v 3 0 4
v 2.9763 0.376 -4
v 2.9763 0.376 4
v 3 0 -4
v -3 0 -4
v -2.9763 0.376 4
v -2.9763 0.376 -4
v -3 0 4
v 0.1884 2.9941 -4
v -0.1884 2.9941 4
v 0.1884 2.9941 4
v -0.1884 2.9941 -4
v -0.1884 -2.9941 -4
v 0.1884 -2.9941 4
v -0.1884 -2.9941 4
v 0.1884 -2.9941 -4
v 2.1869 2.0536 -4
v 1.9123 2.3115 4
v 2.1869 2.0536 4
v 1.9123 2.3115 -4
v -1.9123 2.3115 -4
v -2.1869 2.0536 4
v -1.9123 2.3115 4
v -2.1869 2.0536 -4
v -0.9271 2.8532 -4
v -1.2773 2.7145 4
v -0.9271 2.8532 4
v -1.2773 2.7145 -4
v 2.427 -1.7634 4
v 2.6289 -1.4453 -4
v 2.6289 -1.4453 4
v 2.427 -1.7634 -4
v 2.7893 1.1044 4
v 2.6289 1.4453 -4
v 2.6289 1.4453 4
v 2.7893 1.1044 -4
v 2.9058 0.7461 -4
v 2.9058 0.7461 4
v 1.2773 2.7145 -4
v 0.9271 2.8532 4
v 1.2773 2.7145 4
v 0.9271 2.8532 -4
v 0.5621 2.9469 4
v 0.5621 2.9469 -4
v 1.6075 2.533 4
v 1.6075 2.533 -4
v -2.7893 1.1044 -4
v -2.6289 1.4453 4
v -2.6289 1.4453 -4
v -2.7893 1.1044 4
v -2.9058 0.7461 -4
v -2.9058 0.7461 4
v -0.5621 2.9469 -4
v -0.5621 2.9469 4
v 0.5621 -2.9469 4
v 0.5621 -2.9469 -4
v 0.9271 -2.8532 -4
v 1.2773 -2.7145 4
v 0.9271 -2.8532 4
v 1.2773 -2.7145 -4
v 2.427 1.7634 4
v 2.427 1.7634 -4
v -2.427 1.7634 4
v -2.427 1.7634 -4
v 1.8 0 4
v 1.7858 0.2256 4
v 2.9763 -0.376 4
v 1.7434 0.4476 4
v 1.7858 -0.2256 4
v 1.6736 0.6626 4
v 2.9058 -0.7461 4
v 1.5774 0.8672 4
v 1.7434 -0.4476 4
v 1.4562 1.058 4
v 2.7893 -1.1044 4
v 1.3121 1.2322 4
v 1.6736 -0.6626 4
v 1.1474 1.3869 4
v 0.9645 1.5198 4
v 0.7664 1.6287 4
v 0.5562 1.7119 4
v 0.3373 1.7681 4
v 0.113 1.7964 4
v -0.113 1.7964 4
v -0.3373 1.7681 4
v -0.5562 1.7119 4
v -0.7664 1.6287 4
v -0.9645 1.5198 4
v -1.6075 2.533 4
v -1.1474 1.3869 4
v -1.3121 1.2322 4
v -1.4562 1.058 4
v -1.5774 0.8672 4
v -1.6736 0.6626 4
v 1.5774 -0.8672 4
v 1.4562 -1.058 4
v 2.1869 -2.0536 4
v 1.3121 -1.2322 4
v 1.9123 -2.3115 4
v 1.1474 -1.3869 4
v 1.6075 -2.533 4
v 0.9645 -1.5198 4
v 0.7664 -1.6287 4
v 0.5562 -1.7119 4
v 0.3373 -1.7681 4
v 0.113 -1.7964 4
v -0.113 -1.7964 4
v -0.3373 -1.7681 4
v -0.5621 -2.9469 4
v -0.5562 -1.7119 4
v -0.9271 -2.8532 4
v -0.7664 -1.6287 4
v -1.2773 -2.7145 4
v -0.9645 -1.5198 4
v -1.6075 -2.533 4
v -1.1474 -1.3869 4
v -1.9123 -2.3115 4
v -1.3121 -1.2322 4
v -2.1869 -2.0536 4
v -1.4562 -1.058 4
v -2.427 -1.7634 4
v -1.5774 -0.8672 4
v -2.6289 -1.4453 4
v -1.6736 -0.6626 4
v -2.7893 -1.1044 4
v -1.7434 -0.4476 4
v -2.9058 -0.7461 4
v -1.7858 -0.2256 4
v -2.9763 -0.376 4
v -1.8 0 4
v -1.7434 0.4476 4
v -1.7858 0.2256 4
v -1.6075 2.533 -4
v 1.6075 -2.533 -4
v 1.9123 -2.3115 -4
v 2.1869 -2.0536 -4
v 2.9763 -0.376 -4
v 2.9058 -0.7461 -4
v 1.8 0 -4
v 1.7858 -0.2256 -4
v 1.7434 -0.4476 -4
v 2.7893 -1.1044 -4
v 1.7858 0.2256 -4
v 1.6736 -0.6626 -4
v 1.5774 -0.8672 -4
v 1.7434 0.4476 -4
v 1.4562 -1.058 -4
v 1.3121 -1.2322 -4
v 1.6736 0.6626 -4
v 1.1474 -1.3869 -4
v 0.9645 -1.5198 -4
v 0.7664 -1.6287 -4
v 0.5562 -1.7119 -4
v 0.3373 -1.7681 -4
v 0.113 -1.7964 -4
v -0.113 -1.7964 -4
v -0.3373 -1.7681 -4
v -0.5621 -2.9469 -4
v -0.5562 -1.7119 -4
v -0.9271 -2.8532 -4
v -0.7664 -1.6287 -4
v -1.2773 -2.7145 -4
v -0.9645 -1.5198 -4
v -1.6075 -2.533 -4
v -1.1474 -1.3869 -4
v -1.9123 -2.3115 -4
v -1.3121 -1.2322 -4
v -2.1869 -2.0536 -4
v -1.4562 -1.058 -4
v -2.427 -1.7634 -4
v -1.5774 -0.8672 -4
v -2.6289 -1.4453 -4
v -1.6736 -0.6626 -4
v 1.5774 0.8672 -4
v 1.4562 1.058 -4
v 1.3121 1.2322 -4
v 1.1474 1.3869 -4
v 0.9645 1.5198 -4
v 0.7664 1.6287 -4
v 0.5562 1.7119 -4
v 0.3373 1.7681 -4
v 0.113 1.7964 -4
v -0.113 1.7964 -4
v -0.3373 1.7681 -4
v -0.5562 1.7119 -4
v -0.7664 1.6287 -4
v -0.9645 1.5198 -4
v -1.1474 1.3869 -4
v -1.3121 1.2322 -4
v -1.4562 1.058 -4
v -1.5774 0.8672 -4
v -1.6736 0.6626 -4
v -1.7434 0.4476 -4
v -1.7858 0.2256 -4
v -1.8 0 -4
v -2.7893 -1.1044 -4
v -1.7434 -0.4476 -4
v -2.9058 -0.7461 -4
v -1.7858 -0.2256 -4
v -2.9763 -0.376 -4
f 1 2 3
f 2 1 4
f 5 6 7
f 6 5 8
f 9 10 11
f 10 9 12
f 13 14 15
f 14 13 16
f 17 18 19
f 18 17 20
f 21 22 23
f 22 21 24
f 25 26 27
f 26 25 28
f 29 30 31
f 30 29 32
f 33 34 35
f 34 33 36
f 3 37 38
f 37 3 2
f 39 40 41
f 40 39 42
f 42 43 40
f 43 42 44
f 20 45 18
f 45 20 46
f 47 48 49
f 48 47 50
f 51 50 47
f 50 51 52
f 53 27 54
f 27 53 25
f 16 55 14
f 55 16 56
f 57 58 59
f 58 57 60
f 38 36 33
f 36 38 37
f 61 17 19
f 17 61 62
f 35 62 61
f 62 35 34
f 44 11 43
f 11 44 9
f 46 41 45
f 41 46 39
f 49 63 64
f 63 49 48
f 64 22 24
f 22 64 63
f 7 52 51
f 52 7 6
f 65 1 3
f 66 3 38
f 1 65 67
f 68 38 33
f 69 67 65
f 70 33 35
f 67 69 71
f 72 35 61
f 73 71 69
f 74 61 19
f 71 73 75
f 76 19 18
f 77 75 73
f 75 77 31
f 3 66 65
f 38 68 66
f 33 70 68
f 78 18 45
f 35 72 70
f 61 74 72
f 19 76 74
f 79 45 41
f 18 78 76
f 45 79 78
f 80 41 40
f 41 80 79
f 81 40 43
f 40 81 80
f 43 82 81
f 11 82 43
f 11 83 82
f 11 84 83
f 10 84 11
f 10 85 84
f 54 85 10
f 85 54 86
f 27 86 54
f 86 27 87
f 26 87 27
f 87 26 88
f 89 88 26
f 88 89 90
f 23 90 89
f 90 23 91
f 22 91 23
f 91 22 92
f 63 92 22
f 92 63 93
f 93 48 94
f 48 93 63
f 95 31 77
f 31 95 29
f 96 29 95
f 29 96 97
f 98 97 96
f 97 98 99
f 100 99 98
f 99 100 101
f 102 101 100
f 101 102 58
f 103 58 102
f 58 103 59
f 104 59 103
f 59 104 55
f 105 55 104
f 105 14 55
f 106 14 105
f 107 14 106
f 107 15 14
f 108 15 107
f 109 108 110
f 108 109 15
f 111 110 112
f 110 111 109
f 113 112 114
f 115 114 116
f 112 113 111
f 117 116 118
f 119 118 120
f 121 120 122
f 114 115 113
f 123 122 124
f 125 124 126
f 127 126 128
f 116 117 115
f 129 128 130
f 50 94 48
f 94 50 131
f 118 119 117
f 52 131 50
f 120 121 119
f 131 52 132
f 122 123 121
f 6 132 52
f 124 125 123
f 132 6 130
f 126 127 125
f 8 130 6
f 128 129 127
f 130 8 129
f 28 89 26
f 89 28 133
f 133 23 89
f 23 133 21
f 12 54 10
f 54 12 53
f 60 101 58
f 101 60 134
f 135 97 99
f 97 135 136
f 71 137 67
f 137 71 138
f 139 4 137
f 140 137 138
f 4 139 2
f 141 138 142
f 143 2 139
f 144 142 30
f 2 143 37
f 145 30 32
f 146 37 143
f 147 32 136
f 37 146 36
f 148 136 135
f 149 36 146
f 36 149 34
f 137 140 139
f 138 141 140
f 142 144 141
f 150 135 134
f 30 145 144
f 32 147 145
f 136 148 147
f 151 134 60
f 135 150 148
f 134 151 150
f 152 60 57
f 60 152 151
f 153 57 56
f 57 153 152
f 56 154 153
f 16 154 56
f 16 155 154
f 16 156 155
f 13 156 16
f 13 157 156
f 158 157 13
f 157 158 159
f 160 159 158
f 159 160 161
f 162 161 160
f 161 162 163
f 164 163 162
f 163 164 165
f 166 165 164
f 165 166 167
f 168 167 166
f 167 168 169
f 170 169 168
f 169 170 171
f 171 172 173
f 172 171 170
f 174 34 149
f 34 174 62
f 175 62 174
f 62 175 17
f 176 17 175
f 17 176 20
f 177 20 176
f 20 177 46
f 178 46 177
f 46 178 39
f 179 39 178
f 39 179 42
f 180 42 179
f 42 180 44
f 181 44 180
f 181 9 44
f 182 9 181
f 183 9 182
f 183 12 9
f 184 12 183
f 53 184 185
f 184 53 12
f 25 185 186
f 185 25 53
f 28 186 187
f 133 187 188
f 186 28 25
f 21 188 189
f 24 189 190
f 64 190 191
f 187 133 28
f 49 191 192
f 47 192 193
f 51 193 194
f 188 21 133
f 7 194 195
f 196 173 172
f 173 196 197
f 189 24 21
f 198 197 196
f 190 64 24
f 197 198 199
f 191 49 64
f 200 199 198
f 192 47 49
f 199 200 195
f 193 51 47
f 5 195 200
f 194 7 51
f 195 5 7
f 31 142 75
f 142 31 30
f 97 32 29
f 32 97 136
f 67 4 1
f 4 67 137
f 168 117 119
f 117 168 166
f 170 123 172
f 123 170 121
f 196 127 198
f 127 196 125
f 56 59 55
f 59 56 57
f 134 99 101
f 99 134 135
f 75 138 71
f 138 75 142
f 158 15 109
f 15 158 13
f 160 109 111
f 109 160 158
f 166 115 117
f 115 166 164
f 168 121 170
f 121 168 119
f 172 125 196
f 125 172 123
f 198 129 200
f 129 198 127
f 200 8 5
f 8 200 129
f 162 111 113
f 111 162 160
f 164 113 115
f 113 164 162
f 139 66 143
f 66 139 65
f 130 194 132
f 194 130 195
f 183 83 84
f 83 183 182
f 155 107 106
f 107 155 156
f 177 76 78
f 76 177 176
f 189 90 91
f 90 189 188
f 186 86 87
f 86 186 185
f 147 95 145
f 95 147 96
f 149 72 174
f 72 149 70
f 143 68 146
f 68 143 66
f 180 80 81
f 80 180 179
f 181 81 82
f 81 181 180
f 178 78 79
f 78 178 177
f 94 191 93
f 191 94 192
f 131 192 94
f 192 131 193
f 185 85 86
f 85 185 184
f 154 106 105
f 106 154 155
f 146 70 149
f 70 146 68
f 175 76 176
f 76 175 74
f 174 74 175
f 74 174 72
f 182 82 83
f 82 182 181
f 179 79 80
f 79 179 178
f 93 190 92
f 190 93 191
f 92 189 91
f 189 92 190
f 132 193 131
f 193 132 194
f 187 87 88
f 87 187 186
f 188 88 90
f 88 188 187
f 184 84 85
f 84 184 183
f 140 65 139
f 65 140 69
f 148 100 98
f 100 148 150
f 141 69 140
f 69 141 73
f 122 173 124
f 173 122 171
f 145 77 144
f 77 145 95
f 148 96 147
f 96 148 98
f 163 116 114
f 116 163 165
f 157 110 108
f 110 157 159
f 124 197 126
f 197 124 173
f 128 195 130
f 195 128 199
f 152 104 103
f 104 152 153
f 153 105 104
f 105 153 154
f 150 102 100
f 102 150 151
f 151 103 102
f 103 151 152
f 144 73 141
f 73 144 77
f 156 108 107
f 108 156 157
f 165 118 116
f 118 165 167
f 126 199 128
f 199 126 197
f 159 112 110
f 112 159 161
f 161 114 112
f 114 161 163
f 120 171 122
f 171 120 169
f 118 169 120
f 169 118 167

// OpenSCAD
$fn = 50;


difference() {
	union() {
		translate(v = [0, 0, -4.0000000000]) {
			cylinder(h = 8, r = 3.0000000000);
		}
	}
	union() {
		translate(v = [0, 0, -100.0000000000]) {
			cylinder(h = 200, r = 1.8000000000);
		}
	}
}
